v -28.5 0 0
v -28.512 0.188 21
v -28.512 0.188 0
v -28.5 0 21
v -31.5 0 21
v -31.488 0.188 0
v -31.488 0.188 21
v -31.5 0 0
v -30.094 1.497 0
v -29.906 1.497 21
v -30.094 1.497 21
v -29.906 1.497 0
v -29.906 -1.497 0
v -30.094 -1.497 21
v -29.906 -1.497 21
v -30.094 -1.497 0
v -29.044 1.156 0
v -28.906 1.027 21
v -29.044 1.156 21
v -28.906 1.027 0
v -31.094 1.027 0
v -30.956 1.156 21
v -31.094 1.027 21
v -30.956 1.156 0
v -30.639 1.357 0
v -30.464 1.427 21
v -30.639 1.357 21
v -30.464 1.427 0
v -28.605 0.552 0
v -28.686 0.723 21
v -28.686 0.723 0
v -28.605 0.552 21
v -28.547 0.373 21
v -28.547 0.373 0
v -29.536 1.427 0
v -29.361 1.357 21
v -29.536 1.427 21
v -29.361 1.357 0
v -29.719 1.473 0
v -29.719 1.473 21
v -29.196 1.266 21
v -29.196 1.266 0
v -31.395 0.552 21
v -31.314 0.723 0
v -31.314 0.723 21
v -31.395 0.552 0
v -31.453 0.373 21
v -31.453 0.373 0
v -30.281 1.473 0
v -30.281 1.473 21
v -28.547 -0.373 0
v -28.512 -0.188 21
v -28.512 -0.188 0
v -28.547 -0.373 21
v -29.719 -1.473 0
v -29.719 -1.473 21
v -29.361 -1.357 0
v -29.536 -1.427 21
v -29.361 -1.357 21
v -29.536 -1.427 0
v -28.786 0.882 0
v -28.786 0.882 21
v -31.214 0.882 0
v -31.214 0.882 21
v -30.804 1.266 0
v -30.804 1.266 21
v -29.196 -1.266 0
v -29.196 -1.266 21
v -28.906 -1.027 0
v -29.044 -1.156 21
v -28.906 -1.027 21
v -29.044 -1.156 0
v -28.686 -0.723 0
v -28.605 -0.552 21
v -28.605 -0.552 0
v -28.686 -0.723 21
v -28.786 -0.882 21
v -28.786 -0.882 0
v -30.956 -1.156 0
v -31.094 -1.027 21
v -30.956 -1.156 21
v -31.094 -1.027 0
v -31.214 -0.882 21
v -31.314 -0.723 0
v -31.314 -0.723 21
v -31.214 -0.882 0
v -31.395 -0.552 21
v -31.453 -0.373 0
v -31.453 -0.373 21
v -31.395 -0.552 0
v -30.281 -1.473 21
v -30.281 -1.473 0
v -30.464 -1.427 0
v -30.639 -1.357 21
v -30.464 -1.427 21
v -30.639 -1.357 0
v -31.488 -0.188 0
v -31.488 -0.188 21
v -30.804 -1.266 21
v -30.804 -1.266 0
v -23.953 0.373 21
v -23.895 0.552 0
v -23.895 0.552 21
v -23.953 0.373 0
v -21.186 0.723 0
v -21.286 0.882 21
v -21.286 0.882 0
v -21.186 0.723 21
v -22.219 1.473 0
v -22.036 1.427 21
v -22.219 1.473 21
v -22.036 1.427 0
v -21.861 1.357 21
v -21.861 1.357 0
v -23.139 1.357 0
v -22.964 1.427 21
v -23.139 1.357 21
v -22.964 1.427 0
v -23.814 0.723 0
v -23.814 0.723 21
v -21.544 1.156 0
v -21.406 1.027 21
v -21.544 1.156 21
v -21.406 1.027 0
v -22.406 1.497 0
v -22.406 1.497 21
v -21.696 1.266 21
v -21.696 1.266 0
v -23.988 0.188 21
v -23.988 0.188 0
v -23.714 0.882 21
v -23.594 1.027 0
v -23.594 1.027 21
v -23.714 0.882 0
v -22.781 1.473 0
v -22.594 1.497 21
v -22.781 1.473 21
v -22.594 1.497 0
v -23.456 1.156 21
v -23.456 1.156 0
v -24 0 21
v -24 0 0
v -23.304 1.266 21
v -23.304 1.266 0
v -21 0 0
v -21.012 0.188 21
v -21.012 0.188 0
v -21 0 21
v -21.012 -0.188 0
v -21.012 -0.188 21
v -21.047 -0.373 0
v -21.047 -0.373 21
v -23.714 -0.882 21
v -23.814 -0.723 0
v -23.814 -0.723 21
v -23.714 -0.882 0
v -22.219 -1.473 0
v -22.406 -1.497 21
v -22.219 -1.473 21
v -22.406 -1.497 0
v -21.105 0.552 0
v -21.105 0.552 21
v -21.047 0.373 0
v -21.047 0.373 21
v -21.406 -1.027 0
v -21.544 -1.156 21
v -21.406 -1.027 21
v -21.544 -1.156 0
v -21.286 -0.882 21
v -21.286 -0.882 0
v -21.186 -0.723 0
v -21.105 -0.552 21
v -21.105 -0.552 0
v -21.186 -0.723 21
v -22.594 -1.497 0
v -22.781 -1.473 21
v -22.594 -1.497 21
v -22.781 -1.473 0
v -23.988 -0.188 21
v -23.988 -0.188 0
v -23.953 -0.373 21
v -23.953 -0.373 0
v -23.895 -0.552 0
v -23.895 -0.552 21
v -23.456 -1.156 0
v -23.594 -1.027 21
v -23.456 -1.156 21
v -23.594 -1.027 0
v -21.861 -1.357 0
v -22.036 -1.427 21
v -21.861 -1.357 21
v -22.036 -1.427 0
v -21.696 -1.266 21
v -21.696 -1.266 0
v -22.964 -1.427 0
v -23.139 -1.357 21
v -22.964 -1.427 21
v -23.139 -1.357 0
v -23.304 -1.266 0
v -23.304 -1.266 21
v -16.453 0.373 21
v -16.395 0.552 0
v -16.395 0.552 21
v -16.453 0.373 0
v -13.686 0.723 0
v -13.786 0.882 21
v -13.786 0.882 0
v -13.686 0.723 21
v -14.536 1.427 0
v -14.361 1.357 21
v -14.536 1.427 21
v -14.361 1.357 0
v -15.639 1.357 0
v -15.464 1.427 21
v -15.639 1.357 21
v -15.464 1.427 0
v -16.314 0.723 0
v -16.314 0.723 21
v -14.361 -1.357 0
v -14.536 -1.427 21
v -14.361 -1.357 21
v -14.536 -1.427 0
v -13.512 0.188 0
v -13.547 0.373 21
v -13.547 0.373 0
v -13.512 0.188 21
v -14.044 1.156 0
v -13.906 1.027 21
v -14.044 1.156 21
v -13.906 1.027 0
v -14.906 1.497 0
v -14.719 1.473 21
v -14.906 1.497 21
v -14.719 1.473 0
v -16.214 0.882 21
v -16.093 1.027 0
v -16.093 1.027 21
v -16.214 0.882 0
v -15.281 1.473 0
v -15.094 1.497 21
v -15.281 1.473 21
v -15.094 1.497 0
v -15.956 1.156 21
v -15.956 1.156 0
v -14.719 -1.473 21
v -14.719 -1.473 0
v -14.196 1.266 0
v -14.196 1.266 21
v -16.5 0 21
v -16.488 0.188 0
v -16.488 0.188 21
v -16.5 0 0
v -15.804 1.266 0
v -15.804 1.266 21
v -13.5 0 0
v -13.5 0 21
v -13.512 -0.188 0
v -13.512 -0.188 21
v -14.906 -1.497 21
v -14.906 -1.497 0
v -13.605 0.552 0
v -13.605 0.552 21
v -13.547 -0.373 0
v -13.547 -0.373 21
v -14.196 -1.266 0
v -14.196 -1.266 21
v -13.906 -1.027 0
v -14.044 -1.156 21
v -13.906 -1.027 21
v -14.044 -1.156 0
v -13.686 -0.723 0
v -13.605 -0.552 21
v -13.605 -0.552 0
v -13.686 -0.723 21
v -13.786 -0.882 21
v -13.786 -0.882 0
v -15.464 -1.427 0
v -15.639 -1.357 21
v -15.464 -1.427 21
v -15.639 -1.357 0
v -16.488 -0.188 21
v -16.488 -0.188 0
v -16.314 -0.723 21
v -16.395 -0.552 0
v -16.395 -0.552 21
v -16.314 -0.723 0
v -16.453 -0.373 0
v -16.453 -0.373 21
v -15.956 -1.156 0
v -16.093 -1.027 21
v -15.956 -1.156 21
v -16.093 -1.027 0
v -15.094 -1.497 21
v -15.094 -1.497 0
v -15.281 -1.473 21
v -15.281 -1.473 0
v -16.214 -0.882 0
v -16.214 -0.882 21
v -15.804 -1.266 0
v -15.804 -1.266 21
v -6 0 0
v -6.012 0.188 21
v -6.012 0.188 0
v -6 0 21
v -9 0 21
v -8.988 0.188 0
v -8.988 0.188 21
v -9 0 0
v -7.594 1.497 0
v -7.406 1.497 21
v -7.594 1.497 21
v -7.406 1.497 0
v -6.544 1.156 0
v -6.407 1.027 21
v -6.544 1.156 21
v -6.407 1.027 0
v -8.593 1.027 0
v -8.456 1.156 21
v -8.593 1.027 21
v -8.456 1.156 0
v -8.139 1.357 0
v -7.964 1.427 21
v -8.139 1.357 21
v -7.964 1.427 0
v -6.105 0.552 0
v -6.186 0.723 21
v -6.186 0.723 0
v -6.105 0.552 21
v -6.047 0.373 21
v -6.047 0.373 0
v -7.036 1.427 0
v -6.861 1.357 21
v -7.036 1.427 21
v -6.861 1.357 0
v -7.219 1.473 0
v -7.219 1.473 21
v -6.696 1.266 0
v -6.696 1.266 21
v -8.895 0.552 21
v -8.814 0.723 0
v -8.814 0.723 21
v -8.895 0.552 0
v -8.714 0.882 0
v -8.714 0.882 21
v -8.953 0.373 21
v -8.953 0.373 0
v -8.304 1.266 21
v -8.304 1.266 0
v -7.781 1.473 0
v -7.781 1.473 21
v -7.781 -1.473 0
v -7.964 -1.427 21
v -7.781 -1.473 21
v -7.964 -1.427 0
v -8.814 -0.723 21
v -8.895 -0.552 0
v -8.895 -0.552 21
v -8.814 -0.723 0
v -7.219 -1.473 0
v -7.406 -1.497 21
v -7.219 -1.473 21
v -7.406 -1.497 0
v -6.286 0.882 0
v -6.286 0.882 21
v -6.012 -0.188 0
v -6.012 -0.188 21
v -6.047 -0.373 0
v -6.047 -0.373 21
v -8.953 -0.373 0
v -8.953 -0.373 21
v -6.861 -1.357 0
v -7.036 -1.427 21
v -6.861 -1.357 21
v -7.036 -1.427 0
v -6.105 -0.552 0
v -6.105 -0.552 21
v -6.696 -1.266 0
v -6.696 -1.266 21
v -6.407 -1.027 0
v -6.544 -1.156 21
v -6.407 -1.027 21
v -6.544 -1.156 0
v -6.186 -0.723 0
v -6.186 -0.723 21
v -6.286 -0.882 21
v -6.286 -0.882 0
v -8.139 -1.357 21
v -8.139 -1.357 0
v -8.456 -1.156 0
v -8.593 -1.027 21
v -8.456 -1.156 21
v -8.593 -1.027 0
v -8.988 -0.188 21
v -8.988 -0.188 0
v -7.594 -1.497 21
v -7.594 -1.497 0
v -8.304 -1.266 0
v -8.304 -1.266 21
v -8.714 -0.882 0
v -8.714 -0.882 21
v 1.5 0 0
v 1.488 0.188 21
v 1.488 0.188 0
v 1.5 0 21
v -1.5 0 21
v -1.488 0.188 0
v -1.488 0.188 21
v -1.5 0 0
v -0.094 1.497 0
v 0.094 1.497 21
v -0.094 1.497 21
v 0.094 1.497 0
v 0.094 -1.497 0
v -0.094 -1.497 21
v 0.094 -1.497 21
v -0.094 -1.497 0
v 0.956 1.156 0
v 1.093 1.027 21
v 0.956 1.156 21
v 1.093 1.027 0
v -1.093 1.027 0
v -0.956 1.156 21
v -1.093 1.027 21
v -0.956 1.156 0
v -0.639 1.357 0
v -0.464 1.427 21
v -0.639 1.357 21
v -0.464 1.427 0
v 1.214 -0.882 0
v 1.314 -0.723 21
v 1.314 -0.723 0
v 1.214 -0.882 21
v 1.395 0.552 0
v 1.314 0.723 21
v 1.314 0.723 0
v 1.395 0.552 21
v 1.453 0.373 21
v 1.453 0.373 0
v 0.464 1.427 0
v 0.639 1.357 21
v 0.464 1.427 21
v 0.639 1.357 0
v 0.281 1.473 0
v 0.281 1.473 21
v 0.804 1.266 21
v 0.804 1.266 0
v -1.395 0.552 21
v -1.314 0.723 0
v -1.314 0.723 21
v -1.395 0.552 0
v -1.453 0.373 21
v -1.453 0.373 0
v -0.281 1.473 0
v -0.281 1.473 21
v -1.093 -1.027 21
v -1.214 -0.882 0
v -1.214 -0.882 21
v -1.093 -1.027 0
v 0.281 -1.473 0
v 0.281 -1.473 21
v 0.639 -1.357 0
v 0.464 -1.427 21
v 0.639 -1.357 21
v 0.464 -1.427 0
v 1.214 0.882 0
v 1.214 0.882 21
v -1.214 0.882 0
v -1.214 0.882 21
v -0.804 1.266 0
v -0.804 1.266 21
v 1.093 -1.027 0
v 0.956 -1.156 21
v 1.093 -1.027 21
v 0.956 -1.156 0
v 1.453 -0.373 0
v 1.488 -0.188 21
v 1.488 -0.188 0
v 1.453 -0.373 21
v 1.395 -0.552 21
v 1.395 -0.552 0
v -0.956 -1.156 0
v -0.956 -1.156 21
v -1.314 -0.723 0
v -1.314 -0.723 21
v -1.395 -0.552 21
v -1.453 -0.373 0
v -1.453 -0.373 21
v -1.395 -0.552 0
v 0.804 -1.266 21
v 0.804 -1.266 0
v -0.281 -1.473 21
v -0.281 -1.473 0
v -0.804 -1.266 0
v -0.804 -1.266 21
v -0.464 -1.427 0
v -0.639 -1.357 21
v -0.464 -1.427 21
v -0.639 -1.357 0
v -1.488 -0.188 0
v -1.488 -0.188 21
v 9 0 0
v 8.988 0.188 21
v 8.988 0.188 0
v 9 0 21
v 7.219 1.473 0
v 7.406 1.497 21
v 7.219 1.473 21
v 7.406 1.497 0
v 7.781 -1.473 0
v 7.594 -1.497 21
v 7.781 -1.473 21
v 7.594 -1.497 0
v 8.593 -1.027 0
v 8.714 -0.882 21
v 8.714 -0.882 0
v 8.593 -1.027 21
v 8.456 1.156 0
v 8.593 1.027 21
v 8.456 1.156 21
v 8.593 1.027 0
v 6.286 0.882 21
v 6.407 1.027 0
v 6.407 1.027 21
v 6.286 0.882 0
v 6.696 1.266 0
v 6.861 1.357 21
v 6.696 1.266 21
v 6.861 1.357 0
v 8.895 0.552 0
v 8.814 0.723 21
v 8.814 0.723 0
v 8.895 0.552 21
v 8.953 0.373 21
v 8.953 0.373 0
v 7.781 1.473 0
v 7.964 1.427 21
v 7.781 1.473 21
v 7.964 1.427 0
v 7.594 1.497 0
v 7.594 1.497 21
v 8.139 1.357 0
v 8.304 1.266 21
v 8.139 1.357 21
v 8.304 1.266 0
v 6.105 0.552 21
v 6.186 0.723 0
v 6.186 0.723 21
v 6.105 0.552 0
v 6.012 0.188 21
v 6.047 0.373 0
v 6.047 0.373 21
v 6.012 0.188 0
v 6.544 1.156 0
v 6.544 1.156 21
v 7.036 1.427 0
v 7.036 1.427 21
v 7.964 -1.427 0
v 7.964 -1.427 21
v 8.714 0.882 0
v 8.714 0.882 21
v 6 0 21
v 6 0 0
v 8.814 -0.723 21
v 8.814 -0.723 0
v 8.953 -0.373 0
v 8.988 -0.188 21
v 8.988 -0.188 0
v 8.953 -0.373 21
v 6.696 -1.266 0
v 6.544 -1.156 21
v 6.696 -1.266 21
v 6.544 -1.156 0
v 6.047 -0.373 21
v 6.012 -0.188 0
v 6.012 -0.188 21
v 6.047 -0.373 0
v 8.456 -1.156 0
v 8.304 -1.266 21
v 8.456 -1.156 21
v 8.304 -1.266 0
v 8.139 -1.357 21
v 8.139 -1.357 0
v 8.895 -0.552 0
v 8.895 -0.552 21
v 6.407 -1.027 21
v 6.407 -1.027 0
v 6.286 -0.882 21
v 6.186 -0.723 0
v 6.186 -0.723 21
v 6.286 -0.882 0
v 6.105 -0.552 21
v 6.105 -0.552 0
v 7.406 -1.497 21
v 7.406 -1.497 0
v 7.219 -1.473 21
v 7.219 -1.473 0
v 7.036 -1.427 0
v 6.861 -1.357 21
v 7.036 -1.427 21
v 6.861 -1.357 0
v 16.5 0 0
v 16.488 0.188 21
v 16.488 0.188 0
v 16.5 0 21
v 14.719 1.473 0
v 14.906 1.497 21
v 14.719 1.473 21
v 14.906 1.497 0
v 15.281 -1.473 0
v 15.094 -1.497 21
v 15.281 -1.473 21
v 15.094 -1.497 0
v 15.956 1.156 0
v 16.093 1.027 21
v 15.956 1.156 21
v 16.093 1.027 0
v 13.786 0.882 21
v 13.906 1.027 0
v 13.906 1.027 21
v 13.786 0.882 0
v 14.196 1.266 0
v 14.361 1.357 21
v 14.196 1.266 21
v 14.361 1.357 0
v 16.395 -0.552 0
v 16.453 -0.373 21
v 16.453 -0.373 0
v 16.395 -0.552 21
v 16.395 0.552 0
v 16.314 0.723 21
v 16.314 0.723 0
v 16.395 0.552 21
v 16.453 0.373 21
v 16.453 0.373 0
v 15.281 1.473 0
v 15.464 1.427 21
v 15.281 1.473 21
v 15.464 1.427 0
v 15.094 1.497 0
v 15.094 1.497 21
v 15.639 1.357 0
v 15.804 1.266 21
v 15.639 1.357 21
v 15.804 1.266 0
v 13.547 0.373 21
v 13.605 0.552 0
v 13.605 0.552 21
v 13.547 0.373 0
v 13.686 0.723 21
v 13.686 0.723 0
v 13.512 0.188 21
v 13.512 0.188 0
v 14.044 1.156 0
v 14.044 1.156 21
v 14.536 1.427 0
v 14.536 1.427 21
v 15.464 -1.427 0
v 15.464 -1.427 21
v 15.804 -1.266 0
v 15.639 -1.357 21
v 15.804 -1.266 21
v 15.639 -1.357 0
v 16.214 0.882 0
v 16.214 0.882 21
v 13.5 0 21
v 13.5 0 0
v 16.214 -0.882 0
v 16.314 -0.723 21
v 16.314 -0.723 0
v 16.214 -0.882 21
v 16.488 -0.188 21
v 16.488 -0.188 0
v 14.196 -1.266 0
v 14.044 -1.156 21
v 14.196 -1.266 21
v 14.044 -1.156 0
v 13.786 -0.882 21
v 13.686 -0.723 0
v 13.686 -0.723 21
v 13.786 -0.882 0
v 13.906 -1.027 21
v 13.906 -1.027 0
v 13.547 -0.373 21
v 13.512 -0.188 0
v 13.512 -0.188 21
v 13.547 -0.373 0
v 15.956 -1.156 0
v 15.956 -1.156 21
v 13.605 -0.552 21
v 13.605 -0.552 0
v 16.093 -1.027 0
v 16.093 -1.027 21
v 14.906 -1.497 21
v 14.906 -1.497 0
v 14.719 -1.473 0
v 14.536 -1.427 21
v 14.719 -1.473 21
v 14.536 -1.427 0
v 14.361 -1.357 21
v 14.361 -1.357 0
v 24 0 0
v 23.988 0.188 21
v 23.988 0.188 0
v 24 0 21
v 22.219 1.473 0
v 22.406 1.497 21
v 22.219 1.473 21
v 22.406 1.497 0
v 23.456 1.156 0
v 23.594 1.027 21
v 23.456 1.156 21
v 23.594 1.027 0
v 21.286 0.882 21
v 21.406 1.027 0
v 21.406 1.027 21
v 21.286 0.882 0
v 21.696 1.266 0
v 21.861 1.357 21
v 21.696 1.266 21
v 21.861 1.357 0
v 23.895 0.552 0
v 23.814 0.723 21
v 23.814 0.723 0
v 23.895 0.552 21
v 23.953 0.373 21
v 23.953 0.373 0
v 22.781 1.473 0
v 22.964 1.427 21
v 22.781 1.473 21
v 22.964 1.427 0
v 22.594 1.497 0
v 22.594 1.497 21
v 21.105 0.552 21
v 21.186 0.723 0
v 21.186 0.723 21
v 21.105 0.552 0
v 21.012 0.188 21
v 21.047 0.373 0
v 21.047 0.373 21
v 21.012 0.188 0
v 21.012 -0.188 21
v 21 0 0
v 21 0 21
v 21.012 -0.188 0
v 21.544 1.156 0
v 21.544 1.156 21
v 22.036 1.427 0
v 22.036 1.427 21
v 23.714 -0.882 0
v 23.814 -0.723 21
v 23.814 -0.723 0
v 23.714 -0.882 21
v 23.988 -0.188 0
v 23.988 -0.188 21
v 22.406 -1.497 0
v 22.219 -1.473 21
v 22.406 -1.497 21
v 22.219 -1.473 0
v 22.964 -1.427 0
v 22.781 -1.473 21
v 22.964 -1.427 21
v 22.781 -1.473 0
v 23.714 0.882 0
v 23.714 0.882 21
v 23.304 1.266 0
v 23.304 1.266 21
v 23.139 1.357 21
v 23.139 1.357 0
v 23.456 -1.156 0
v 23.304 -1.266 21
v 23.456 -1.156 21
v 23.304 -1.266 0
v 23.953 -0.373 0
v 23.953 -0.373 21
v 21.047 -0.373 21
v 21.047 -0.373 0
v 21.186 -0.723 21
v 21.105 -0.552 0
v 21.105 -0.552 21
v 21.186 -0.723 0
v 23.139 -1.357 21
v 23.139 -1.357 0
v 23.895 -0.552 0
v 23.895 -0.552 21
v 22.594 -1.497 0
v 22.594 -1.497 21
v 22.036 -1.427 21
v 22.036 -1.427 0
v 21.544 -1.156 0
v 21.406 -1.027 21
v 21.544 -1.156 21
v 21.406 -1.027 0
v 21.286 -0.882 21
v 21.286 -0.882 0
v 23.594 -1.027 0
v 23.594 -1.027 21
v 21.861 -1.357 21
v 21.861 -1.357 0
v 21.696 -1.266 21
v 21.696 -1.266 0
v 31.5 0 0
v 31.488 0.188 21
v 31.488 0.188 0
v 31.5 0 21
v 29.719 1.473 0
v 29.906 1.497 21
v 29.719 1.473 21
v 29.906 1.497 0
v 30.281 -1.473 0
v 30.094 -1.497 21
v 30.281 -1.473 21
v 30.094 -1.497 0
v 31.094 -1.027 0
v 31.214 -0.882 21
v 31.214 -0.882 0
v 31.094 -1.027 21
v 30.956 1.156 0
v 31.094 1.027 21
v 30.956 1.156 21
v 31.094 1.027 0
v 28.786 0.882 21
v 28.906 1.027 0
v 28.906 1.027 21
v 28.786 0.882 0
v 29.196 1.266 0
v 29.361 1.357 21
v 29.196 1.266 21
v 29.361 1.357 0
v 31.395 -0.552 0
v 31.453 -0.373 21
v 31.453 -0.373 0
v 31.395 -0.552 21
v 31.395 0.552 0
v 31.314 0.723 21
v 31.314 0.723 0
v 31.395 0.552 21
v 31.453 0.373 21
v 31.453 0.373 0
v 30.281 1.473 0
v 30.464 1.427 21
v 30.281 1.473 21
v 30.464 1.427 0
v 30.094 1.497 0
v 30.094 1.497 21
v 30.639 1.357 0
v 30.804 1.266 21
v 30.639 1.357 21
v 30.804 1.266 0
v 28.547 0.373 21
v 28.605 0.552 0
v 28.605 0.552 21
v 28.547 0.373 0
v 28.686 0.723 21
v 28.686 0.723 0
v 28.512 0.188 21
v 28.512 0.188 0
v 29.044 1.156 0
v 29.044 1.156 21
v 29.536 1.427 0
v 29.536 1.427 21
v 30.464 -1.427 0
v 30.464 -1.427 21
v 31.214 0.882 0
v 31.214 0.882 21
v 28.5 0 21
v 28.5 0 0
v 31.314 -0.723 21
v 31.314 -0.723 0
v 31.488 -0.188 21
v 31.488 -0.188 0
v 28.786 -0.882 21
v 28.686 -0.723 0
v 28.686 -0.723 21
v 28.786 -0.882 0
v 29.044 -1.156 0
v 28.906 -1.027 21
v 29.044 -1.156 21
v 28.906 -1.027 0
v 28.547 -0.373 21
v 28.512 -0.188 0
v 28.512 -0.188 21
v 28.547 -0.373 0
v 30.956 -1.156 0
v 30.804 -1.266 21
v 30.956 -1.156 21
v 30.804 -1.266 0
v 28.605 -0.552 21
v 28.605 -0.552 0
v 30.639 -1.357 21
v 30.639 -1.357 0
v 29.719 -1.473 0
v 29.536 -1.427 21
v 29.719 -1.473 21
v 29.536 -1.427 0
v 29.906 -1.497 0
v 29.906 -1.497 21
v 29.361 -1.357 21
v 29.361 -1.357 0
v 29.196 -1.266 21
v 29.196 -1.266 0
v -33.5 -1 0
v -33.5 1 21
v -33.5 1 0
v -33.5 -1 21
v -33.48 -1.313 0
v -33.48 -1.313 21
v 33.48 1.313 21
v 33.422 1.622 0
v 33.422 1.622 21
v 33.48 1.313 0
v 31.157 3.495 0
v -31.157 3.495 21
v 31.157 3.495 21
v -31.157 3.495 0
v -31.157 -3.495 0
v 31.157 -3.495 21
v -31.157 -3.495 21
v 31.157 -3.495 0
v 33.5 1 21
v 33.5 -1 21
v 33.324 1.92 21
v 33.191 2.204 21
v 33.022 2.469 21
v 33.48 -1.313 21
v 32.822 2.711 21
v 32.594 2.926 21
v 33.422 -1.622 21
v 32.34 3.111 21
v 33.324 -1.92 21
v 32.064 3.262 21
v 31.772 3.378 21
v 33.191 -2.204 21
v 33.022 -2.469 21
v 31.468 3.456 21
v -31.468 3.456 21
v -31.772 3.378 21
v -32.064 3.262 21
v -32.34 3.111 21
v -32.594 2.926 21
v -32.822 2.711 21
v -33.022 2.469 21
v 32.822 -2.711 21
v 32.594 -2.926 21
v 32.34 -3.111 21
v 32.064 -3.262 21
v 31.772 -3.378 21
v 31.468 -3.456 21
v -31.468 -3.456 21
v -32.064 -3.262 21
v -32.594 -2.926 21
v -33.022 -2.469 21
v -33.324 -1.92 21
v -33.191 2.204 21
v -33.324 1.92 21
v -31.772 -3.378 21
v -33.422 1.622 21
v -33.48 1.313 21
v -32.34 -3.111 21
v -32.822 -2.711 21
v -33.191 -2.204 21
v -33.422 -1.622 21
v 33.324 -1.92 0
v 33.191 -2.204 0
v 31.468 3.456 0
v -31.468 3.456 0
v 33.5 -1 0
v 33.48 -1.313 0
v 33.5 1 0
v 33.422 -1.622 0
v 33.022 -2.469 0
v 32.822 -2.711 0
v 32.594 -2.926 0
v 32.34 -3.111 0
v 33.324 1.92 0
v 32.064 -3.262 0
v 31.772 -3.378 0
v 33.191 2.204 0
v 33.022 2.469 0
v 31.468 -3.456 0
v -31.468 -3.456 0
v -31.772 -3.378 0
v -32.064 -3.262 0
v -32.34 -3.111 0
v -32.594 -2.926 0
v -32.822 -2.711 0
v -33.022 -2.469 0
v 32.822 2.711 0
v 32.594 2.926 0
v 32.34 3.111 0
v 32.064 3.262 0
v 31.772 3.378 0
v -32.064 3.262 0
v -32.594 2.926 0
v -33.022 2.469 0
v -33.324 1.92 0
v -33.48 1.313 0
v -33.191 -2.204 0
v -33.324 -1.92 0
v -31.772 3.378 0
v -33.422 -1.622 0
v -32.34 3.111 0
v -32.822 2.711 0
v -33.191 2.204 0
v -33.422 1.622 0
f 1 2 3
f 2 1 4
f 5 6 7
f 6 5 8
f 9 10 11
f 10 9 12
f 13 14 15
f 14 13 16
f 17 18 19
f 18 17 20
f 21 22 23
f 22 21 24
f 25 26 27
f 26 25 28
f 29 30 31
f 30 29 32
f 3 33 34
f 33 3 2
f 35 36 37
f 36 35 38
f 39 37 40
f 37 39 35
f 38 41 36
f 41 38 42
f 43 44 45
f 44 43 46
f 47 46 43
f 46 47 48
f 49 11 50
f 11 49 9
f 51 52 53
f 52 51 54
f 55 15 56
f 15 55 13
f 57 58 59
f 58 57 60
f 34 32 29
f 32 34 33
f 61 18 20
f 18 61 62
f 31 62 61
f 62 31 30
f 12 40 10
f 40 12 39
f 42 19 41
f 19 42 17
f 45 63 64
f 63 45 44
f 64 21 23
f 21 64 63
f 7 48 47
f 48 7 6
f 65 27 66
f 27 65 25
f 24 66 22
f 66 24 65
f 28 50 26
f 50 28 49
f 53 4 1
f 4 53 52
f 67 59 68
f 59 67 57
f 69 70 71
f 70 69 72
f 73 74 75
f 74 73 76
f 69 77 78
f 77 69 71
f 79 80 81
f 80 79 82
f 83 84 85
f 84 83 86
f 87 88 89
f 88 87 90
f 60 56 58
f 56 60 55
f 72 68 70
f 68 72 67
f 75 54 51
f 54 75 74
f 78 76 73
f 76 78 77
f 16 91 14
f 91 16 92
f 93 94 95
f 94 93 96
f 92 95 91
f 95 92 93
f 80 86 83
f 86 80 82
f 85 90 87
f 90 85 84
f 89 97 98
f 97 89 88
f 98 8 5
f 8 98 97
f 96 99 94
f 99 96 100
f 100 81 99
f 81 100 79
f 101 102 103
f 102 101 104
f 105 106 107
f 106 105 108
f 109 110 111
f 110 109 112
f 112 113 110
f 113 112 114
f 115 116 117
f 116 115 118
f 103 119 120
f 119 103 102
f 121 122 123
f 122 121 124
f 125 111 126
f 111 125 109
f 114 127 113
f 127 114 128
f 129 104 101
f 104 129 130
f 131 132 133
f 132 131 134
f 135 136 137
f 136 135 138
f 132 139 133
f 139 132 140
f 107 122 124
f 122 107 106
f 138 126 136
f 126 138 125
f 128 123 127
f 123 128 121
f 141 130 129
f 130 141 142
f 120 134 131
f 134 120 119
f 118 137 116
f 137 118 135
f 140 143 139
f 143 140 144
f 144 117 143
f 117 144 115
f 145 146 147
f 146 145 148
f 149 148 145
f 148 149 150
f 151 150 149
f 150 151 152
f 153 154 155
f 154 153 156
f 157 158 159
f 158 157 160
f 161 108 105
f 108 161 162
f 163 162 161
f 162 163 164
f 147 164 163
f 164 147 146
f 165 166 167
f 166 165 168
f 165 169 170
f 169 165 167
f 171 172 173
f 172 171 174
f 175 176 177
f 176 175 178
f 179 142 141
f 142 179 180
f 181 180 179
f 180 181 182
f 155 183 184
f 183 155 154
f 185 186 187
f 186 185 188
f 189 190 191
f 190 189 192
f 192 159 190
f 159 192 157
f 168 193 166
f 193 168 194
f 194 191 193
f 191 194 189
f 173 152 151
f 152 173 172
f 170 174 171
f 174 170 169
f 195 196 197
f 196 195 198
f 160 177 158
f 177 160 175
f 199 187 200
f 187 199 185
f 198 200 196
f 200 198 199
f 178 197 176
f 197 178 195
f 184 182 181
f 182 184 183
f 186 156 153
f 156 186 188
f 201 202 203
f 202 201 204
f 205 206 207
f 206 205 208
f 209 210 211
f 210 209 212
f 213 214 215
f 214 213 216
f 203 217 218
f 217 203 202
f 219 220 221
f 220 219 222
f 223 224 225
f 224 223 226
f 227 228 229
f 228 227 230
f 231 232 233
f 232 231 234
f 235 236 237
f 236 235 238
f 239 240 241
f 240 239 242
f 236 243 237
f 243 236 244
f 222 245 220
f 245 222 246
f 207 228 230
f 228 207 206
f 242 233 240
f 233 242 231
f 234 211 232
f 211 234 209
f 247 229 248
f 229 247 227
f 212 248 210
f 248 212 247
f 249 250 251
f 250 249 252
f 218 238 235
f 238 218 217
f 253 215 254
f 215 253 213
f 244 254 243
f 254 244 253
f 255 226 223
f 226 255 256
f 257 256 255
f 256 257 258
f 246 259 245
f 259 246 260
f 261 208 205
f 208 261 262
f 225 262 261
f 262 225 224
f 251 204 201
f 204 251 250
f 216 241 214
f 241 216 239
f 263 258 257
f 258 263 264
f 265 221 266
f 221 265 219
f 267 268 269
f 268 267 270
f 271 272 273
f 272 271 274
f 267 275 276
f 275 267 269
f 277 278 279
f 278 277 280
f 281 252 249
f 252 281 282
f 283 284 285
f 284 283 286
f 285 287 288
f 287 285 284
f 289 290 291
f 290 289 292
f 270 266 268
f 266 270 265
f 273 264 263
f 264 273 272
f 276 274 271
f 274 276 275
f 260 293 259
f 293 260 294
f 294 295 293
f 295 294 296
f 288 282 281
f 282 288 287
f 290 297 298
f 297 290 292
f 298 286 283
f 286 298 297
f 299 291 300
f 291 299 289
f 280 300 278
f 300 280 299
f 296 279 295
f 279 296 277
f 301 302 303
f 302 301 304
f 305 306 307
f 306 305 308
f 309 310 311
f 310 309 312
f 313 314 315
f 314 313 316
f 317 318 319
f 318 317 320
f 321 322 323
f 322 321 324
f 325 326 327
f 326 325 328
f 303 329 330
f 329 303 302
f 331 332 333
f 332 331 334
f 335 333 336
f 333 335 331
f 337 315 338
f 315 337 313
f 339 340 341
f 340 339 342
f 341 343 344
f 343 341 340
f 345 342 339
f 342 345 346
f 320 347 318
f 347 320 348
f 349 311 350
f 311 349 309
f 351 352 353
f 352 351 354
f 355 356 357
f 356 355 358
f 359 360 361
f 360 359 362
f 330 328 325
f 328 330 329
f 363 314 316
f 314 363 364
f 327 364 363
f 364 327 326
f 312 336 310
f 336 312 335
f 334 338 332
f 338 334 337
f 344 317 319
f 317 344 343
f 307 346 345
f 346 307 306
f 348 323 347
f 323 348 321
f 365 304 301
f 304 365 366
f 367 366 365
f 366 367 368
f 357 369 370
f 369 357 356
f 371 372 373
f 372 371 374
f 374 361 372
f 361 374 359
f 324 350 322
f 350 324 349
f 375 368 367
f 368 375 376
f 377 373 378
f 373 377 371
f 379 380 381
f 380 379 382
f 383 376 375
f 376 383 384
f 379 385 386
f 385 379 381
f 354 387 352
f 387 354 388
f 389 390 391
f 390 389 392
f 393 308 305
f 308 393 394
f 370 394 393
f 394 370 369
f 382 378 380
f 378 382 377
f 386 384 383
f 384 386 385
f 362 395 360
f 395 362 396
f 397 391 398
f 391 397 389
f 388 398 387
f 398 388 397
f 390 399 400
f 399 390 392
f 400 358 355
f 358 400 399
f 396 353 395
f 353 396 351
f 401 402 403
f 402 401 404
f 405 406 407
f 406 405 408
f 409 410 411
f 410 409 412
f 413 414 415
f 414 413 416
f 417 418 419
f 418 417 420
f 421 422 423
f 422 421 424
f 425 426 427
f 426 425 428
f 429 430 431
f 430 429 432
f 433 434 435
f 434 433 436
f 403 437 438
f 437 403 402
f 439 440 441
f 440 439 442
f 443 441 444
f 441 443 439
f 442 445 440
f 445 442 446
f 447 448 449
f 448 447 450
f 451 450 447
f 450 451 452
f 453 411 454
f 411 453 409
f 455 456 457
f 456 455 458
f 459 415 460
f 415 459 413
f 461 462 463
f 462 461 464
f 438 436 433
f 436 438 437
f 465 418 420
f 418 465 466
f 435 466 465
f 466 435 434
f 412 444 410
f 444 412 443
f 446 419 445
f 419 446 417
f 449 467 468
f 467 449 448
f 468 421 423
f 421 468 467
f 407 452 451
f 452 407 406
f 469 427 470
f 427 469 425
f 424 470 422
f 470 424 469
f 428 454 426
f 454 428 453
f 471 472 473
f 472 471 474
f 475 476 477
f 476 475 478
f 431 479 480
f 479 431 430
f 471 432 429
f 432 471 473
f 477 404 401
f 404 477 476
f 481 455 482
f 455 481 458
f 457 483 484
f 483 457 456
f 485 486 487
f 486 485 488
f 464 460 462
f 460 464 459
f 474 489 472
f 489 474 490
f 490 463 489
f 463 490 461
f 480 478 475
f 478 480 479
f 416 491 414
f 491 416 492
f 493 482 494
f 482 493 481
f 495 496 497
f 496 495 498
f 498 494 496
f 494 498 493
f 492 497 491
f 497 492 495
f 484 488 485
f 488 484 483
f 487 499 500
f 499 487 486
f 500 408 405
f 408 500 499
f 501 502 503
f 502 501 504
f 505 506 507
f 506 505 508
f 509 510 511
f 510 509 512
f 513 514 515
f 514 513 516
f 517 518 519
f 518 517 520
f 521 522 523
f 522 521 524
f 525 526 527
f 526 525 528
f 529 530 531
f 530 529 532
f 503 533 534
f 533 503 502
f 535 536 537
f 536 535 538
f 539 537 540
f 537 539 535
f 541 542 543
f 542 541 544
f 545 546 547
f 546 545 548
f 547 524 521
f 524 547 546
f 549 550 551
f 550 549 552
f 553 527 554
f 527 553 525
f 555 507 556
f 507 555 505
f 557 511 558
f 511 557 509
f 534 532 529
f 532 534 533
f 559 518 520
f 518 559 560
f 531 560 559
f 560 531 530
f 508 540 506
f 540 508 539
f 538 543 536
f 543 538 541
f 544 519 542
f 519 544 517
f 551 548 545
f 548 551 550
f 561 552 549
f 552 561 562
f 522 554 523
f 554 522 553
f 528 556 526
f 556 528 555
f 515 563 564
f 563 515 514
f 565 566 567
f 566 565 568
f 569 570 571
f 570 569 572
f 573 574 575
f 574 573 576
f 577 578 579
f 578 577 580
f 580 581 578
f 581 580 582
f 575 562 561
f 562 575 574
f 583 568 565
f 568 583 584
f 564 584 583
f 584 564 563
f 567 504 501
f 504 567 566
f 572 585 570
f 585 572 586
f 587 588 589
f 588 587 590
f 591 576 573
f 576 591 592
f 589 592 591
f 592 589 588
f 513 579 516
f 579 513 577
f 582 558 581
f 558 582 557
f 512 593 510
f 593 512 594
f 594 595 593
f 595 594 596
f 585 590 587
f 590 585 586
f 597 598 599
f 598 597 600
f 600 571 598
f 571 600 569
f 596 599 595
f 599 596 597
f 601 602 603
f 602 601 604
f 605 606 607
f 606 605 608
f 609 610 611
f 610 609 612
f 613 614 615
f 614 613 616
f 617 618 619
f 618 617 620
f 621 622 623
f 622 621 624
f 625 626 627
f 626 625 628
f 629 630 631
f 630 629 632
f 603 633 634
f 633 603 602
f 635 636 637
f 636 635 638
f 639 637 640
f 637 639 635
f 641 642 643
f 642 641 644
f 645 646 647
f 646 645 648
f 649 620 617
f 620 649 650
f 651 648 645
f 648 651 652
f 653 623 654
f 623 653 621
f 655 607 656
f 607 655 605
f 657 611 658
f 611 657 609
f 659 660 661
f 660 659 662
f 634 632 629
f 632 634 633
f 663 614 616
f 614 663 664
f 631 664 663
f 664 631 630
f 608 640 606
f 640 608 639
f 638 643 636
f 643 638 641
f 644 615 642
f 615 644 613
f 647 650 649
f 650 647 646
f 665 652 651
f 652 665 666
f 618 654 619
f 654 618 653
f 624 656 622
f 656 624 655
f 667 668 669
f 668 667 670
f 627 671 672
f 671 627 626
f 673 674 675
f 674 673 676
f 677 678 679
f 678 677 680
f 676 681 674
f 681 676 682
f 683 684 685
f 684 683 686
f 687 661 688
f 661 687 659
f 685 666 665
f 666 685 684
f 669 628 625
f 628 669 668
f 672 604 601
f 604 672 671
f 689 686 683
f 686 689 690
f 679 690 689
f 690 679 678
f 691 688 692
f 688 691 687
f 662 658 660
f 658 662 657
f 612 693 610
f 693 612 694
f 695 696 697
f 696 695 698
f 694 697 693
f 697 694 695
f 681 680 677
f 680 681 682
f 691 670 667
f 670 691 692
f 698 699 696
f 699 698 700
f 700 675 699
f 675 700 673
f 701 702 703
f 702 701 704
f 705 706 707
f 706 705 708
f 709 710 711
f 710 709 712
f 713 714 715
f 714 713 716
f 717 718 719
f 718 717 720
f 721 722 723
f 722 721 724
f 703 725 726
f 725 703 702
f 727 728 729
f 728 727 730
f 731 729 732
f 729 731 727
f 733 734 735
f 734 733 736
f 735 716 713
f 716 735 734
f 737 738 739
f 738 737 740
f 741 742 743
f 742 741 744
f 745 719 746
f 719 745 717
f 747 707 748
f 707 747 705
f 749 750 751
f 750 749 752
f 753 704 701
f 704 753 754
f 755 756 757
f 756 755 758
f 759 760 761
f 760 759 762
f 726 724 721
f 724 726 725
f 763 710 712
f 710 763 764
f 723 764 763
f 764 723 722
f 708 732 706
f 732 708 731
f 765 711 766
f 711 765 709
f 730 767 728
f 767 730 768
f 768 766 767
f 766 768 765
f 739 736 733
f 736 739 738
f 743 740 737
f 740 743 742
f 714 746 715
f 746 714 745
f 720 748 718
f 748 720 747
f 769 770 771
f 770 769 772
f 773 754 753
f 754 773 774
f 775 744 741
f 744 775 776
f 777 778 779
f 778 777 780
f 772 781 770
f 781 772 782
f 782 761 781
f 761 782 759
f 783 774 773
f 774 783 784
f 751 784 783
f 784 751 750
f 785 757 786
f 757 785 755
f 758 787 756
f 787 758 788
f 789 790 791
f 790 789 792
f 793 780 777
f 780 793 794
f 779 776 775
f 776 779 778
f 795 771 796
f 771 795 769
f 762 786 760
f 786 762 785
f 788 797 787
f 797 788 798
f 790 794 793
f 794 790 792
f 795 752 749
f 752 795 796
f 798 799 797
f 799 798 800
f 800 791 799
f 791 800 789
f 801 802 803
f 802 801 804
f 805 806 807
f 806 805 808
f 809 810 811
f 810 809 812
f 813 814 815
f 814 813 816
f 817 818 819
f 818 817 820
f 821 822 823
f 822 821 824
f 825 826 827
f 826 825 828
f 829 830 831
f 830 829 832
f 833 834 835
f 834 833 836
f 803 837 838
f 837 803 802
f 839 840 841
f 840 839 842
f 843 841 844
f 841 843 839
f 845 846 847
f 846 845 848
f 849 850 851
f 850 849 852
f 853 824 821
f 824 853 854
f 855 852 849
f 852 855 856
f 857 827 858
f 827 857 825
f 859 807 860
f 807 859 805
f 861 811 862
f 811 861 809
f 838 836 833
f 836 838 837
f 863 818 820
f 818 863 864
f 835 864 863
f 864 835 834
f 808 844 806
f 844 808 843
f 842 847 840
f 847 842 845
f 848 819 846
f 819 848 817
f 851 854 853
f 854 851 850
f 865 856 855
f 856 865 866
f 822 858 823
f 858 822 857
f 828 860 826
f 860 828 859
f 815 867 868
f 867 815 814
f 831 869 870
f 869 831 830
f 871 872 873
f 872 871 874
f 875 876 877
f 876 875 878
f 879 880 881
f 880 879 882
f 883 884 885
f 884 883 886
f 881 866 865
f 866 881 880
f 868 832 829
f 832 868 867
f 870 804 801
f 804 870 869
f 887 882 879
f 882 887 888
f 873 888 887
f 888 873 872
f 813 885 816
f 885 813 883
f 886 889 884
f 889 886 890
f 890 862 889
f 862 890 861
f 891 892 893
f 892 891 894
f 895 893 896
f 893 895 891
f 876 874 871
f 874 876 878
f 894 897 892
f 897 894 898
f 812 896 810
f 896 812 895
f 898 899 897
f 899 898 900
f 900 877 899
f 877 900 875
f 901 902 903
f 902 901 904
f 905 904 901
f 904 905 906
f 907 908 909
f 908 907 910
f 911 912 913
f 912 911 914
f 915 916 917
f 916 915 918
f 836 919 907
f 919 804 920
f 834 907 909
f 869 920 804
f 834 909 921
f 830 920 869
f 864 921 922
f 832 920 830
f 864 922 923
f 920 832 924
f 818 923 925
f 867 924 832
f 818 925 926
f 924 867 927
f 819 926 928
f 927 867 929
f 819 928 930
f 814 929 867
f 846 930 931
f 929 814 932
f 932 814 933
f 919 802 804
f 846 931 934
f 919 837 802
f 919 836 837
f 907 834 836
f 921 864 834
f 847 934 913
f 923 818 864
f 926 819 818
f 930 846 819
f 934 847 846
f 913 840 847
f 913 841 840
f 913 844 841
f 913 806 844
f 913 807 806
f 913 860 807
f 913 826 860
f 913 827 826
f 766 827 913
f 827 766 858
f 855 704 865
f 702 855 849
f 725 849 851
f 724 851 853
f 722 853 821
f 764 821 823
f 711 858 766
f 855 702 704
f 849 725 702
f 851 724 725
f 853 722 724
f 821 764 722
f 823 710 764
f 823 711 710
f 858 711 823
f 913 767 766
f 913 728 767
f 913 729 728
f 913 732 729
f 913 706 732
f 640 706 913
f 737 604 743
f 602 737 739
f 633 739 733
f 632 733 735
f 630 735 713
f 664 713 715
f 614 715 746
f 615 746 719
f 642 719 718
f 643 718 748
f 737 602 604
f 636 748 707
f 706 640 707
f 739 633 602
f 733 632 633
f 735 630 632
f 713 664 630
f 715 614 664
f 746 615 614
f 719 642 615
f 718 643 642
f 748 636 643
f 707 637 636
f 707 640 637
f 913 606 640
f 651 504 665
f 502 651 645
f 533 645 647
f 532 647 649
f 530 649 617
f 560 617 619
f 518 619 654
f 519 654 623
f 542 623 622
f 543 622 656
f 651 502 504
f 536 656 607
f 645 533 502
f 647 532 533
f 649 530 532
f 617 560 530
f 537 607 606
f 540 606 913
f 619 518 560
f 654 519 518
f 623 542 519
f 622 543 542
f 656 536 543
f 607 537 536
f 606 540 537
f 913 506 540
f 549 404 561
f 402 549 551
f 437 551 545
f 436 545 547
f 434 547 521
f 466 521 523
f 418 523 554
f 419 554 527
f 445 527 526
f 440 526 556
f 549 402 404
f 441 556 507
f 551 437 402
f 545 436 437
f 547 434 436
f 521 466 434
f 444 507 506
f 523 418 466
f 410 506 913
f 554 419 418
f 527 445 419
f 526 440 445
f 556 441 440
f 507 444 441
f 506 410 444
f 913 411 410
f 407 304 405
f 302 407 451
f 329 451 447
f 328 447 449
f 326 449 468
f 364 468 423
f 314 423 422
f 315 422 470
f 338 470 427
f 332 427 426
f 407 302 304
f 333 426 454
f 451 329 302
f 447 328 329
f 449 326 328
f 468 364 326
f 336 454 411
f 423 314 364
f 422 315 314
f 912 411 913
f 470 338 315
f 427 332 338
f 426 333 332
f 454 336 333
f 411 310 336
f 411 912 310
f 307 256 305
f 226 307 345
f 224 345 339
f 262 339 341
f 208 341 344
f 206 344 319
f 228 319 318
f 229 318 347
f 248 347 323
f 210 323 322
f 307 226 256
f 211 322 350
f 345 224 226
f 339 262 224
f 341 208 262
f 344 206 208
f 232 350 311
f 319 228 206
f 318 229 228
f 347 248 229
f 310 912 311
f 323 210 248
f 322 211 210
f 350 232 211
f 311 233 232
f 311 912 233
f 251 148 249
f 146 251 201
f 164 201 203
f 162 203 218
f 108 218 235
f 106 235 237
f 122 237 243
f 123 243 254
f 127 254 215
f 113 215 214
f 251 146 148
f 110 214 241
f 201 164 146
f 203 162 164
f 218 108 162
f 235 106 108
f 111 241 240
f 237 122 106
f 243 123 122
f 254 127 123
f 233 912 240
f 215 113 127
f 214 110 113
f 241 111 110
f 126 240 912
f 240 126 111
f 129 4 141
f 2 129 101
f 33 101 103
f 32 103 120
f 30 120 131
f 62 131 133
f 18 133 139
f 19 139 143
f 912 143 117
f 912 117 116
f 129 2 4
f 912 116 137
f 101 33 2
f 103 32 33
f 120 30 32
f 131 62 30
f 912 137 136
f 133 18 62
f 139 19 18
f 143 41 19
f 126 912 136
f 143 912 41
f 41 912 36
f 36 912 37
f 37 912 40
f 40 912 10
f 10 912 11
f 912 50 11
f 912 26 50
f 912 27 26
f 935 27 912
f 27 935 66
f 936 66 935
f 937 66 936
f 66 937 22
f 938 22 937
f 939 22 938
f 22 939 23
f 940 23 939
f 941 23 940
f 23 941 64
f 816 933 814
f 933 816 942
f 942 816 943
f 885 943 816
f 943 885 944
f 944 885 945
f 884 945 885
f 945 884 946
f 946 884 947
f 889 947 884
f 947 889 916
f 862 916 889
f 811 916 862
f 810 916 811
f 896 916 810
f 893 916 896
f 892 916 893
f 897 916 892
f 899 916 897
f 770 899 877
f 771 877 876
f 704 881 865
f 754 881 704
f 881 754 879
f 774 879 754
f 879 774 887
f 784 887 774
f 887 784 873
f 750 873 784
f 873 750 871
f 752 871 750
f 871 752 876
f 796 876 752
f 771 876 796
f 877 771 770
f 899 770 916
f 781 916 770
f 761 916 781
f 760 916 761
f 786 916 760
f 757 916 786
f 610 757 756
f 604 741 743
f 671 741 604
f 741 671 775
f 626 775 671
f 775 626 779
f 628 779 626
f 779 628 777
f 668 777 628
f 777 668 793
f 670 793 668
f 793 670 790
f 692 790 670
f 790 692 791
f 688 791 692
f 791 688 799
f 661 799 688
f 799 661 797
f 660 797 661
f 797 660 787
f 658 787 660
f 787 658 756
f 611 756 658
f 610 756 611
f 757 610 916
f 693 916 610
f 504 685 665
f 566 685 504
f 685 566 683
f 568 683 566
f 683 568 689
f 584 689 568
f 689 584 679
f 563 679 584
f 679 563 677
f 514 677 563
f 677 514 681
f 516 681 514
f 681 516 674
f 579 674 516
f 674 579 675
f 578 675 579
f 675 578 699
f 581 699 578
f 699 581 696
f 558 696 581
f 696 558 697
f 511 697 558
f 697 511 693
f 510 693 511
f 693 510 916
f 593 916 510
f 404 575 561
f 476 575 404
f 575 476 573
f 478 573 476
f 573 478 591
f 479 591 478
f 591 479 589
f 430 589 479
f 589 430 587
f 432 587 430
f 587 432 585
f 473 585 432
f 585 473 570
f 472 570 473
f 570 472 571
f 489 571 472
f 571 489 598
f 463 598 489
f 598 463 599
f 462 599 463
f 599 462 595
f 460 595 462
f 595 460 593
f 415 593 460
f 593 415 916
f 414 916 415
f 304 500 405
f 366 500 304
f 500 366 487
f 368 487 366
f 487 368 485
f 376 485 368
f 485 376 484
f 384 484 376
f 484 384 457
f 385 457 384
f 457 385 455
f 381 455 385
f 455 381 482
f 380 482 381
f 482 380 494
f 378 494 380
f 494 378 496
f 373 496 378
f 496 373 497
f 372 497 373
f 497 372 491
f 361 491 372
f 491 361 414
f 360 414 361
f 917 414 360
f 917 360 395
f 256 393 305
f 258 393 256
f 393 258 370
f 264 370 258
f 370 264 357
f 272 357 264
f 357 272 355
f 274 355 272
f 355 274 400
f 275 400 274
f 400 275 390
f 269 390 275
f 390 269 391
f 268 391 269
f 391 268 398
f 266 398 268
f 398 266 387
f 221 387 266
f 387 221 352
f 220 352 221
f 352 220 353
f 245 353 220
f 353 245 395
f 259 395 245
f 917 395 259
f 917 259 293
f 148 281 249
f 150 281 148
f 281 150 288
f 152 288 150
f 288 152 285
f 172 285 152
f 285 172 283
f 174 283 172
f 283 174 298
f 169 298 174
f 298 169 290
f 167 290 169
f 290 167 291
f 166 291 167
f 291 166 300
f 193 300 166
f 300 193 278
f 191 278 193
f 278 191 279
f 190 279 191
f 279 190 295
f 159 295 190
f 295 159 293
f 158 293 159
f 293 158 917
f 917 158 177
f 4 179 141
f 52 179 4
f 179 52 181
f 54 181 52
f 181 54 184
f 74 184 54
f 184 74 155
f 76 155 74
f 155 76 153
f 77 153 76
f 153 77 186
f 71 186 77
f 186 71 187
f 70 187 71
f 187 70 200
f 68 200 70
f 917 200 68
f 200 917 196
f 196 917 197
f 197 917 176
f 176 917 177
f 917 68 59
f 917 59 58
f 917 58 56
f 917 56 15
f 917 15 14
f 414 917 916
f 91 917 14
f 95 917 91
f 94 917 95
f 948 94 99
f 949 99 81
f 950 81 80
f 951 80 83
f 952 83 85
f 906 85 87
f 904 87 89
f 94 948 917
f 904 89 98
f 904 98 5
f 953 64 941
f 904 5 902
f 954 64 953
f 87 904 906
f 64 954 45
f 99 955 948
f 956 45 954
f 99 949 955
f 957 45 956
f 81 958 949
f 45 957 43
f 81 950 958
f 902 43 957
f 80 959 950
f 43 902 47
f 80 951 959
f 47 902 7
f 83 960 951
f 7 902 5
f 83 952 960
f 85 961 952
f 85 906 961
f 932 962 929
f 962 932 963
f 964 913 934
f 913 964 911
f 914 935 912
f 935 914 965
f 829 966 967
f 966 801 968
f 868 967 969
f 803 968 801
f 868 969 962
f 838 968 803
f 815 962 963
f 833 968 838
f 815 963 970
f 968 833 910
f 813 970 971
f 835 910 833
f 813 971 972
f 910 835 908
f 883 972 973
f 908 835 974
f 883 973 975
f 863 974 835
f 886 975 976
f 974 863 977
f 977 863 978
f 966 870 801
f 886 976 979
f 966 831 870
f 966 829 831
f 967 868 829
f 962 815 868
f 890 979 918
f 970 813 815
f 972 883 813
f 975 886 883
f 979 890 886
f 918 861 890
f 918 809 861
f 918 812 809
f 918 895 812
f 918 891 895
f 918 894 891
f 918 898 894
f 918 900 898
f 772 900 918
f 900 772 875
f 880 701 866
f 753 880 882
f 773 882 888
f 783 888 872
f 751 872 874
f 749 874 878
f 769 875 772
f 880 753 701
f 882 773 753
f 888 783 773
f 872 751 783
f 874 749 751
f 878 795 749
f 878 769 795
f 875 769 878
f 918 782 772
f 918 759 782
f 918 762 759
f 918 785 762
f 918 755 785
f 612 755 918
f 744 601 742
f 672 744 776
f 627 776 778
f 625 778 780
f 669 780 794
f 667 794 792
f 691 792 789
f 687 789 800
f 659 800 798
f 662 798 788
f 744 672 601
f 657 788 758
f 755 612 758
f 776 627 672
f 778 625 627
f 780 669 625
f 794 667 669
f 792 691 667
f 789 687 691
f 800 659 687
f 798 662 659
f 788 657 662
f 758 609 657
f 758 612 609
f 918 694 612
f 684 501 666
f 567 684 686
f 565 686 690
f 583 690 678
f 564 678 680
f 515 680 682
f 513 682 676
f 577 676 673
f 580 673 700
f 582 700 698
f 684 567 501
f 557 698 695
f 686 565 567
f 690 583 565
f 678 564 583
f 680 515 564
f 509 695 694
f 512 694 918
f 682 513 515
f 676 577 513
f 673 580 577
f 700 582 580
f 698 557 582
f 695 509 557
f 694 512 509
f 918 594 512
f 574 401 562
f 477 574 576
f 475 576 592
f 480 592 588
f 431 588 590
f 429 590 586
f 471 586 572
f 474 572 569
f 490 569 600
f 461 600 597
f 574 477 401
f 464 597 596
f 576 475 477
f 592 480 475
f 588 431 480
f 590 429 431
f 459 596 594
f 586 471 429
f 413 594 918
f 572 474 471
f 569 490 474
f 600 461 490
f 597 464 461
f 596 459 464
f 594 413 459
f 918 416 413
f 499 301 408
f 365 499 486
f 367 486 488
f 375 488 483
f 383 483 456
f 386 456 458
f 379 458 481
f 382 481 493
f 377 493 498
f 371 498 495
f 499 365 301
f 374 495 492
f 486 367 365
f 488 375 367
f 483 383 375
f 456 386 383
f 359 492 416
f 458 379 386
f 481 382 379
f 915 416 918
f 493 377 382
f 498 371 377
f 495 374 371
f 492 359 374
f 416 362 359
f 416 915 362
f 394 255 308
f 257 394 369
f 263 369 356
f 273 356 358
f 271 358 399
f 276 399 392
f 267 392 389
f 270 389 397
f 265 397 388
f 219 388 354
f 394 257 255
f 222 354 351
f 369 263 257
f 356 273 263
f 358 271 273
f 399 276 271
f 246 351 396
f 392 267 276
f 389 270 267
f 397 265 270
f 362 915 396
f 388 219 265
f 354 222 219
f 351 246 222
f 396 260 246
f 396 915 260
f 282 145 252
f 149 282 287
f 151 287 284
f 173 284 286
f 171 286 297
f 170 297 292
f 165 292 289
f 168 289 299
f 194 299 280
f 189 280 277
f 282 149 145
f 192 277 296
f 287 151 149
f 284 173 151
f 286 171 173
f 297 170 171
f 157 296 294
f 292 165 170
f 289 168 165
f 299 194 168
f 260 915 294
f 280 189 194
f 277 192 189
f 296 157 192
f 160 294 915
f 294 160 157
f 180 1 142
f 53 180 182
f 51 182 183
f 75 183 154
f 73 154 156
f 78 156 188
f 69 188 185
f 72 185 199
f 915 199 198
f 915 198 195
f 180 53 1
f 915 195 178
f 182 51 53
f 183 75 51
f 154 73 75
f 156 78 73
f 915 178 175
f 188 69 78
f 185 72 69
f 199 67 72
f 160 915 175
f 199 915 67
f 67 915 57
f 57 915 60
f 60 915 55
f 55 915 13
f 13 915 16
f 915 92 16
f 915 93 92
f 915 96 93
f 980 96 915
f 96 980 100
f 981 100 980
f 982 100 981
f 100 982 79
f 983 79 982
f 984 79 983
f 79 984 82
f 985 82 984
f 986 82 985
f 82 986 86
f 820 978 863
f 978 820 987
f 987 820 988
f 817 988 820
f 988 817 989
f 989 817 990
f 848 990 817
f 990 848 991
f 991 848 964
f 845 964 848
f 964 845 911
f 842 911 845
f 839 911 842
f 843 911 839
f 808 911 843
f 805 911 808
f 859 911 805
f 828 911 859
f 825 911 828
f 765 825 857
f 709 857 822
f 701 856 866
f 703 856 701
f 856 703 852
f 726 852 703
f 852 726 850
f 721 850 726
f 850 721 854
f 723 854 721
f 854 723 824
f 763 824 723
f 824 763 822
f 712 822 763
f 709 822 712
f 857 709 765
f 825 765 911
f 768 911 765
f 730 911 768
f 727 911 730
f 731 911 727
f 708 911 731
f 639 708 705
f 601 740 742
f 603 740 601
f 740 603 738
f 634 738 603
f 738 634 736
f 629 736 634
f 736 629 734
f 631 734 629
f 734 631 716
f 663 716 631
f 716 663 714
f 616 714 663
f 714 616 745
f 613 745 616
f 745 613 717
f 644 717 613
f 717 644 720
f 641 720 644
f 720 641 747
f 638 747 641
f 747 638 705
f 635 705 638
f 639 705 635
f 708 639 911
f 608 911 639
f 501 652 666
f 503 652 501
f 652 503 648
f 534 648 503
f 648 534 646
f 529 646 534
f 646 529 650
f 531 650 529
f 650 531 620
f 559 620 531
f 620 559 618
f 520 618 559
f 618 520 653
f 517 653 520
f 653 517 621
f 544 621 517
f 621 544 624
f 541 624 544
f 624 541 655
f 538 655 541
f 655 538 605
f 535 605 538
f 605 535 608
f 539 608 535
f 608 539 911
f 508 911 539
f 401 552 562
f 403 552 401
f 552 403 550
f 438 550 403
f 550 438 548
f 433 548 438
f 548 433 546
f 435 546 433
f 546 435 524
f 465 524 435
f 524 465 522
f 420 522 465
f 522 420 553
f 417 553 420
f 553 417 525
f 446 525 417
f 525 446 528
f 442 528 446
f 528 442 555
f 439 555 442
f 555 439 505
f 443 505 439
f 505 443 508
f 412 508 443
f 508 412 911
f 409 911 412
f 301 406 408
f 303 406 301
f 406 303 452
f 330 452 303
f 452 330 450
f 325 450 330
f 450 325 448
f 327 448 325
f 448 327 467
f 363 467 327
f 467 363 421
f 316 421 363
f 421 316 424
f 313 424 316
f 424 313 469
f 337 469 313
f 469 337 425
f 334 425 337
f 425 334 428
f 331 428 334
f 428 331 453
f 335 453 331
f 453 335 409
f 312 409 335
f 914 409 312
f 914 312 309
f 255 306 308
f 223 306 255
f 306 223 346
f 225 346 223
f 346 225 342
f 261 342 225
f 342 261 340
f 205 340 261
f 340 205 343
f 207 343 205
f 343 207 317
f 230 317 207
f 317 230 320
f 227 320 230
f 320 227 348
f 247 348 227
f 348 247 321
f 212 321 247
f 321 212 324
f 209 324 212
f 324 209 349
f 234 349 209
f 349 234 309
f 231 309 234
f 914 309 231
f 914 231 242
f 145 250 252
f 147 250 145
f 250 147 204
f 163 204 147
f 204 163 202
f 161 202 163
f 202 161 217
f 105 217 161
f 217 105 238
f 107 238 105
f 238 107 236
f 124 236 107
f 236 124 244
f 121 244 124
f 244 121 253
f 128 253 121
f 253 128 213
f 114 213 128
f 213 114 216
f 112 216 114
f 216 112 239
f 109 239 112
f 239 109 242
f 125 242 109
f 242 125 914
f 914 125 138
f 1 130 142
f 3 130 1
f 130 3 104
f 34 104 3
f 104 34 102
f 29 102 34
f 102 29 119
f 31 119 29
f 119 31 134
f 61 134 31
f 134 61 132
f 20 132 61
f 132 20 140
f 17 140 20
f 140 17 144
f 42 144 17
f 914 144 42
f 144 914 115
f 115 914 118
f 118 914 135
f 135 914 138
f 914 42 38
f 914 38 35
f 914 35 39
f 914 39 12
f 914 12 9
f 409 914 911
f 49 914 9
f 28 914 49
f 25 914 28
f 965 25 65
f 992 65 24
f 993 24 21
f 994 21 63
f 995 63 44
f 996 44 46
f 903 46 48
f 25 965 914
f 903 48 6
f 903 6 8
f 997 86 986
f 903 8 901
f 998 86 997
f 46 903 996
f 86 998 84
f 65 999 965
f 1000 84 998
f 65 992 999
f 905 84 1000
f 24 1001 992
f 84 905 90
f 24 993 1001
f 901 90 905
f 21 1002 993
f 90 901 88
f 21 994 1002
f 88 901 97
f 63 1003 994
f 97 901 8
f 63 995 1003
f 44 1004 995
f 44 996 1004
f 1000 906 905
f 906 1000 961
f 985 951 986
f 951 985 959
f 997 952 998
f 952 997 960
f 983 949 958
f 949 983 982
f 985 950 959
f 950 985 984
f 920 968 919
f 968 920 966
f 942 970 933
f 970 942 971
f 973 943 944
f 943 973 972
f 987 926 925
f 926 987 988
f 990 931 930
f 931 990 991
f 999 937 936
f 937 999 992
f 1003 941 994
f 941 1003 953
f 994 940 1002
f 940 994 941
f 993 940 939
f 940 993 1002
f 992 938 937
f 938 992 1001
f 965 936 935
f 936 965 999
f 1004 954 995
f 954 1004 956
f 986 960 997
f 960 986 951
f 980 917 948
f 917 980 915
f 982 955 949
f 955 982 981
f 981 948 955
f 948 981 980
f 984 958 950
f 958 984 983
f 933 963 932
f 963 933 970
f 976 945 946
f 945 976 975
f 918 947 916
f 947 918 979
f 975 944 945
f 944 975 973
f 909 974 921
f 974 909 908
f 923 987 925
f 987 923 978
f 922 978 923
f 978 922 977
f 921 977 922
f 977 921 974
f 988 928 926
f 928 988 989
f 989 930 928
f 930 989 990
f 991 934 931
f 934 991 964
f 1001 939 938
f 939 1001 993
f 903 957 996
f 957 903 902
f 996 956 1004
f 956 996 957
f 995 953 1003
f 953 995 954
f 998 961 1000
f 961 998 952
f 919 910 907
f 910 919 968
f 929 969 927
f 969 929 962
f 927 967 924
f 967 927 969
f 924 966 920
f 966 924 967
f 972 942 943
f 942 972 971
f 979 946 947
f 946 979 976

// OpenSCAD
$fn = 50;


difference() {
	union() {
		translate(v = [0, 0, 0]) {
			rotate(a = [0, 0, 0]) {
				hull() {
					translate(v = [-31.0000000000, 1.0000000000, 0]) {
						rotate(a = [0, 0, 0]) {
							translate(v = [0, 0, 0]) {
								rotate(a = [0, 0, 0]) {
									cylinder(h = 21, r = 2.5000000000);
								}
							}
						}
					}
					translate(v = [31.0000000000, 1.0000000000, 0]) {
						rotate(a = [0, 0, 0]) {
							translate(v = [0, 0, 0]) {
								rotate(a = [0, 0, 0]) {
									cylinder(h = 21, r = 2.5000000000);
								}
							}
						}
					}
					translate(v = [-31.0000000000, -1.0000000000, 0]) {
						rotate(a = [0, 0, 0]) {
							translate(v = [0, 0, 0]) {
								rotate(a = [0, 0, 0]) {
									cylinder(h = 21, r = 2.5000000000);
								}
							}
						}
					}
					translate(v = [31.0000000000, -1.0000000000, 0]) {
						rotate(a = [0, 0, 0]) {
							translate(v = [0, 0, 0]) {
								rotate(a = [0, 0, 0]) {
									cylinder(h = 21, r = 2.5000000000);
								}
							}
						}
					}
				}
			}
		}
	}
	union() {
		translate(v = [-30.0000000000, 0.0000000000, 0]) {
			rotate(a = [0, 0, 0]) {
				translate(v = [0, 0, -50]) {
					rotate(a = [0, 0, 0]) {
						cylinder(h = 100, r = 1.5000000000);
					}
				}
			}
		}
		translate(v = [-22.5000000000, 0.0000000000, 0]) {
			rotate(a = [0, 0, 0]) {
				translate(v = [0, 0, -50]) {
					rotate(a = [0, 0, 0]) {
						cylinder(h = 100, r = 1.5000000000);
					}
				}
			}
		}
		translate(v = [-15.0000000000, 0.0000000000, 0]) {
			rotate(a = [0, 0, 0]) {
				translate(v = [0, 0, -50]) {
					rotate(a = [0, 0, 0]) {
						cylinder(h = 100, r = 1.5000000000);
					}
				}
			}
		}
		translate(v = [-7.5000000000, 0.0000000000, 0]) {
			rotate(a = [0, 0, 0]) {
				translate(v = [0, 0, -50]) {
					rotate(a = [0, 0, 0]) {
						cylinder(h = 100, r = 1.5000000000);
					}
				}
			}
		}
		translate(v = [0.0000000000, 0.0000000000, 0]) {
			rotate(a = [0, 0, 0]) {
				translate(v = [0, 0, -50]) {
					rotate(a = [0, 0, 0]) {
						cylinder(h = 100, r = 1.5000000000);
					}
				}
			}
		}
		translate(v = [7.5000000000, 0.0000000000, 0]) {
			rotate(a = [0, 0, 0]) {
				translate(v = [0, 0, -50]) {
					rotate(a = [0, 0, 0]) {
						cylinder(h = 100, r = 1.5000000000);
					}
				}
			}
		}
		translate(v = [15.0000000000, 0.0000000000, 0]) {
			rotate(a = [0, 0, 0]) {
				translate(v = [0, 0, -50]) {
					rotate(a = [0, 0, 0]) {
						cylinder(h = 100, r = 1.5000000000);
					}
				}
			}
		}
		translate(v = [22.5000000000, 0.0000000000, 0]) {
			rotate(a = [0, 0, 0]) {
				translate(v = [0, 0, -50]) {
					rotate(a = [0, 0, 0]) {
						cylinder(h = 100, r = 1.5000000000);
					}
				}
			}
		}
		translate(v = [30.0000000000, 0.0000000000, 0]) {
			rotate(a = [0, 0, 0]) {
				translate(v = [0, 0, -50]) {
					rotate(a = [0, 0, 0]) {
						cylinder(h = 100, r = 1.5000000000);
					}
				}
			}
		}
	}
}
